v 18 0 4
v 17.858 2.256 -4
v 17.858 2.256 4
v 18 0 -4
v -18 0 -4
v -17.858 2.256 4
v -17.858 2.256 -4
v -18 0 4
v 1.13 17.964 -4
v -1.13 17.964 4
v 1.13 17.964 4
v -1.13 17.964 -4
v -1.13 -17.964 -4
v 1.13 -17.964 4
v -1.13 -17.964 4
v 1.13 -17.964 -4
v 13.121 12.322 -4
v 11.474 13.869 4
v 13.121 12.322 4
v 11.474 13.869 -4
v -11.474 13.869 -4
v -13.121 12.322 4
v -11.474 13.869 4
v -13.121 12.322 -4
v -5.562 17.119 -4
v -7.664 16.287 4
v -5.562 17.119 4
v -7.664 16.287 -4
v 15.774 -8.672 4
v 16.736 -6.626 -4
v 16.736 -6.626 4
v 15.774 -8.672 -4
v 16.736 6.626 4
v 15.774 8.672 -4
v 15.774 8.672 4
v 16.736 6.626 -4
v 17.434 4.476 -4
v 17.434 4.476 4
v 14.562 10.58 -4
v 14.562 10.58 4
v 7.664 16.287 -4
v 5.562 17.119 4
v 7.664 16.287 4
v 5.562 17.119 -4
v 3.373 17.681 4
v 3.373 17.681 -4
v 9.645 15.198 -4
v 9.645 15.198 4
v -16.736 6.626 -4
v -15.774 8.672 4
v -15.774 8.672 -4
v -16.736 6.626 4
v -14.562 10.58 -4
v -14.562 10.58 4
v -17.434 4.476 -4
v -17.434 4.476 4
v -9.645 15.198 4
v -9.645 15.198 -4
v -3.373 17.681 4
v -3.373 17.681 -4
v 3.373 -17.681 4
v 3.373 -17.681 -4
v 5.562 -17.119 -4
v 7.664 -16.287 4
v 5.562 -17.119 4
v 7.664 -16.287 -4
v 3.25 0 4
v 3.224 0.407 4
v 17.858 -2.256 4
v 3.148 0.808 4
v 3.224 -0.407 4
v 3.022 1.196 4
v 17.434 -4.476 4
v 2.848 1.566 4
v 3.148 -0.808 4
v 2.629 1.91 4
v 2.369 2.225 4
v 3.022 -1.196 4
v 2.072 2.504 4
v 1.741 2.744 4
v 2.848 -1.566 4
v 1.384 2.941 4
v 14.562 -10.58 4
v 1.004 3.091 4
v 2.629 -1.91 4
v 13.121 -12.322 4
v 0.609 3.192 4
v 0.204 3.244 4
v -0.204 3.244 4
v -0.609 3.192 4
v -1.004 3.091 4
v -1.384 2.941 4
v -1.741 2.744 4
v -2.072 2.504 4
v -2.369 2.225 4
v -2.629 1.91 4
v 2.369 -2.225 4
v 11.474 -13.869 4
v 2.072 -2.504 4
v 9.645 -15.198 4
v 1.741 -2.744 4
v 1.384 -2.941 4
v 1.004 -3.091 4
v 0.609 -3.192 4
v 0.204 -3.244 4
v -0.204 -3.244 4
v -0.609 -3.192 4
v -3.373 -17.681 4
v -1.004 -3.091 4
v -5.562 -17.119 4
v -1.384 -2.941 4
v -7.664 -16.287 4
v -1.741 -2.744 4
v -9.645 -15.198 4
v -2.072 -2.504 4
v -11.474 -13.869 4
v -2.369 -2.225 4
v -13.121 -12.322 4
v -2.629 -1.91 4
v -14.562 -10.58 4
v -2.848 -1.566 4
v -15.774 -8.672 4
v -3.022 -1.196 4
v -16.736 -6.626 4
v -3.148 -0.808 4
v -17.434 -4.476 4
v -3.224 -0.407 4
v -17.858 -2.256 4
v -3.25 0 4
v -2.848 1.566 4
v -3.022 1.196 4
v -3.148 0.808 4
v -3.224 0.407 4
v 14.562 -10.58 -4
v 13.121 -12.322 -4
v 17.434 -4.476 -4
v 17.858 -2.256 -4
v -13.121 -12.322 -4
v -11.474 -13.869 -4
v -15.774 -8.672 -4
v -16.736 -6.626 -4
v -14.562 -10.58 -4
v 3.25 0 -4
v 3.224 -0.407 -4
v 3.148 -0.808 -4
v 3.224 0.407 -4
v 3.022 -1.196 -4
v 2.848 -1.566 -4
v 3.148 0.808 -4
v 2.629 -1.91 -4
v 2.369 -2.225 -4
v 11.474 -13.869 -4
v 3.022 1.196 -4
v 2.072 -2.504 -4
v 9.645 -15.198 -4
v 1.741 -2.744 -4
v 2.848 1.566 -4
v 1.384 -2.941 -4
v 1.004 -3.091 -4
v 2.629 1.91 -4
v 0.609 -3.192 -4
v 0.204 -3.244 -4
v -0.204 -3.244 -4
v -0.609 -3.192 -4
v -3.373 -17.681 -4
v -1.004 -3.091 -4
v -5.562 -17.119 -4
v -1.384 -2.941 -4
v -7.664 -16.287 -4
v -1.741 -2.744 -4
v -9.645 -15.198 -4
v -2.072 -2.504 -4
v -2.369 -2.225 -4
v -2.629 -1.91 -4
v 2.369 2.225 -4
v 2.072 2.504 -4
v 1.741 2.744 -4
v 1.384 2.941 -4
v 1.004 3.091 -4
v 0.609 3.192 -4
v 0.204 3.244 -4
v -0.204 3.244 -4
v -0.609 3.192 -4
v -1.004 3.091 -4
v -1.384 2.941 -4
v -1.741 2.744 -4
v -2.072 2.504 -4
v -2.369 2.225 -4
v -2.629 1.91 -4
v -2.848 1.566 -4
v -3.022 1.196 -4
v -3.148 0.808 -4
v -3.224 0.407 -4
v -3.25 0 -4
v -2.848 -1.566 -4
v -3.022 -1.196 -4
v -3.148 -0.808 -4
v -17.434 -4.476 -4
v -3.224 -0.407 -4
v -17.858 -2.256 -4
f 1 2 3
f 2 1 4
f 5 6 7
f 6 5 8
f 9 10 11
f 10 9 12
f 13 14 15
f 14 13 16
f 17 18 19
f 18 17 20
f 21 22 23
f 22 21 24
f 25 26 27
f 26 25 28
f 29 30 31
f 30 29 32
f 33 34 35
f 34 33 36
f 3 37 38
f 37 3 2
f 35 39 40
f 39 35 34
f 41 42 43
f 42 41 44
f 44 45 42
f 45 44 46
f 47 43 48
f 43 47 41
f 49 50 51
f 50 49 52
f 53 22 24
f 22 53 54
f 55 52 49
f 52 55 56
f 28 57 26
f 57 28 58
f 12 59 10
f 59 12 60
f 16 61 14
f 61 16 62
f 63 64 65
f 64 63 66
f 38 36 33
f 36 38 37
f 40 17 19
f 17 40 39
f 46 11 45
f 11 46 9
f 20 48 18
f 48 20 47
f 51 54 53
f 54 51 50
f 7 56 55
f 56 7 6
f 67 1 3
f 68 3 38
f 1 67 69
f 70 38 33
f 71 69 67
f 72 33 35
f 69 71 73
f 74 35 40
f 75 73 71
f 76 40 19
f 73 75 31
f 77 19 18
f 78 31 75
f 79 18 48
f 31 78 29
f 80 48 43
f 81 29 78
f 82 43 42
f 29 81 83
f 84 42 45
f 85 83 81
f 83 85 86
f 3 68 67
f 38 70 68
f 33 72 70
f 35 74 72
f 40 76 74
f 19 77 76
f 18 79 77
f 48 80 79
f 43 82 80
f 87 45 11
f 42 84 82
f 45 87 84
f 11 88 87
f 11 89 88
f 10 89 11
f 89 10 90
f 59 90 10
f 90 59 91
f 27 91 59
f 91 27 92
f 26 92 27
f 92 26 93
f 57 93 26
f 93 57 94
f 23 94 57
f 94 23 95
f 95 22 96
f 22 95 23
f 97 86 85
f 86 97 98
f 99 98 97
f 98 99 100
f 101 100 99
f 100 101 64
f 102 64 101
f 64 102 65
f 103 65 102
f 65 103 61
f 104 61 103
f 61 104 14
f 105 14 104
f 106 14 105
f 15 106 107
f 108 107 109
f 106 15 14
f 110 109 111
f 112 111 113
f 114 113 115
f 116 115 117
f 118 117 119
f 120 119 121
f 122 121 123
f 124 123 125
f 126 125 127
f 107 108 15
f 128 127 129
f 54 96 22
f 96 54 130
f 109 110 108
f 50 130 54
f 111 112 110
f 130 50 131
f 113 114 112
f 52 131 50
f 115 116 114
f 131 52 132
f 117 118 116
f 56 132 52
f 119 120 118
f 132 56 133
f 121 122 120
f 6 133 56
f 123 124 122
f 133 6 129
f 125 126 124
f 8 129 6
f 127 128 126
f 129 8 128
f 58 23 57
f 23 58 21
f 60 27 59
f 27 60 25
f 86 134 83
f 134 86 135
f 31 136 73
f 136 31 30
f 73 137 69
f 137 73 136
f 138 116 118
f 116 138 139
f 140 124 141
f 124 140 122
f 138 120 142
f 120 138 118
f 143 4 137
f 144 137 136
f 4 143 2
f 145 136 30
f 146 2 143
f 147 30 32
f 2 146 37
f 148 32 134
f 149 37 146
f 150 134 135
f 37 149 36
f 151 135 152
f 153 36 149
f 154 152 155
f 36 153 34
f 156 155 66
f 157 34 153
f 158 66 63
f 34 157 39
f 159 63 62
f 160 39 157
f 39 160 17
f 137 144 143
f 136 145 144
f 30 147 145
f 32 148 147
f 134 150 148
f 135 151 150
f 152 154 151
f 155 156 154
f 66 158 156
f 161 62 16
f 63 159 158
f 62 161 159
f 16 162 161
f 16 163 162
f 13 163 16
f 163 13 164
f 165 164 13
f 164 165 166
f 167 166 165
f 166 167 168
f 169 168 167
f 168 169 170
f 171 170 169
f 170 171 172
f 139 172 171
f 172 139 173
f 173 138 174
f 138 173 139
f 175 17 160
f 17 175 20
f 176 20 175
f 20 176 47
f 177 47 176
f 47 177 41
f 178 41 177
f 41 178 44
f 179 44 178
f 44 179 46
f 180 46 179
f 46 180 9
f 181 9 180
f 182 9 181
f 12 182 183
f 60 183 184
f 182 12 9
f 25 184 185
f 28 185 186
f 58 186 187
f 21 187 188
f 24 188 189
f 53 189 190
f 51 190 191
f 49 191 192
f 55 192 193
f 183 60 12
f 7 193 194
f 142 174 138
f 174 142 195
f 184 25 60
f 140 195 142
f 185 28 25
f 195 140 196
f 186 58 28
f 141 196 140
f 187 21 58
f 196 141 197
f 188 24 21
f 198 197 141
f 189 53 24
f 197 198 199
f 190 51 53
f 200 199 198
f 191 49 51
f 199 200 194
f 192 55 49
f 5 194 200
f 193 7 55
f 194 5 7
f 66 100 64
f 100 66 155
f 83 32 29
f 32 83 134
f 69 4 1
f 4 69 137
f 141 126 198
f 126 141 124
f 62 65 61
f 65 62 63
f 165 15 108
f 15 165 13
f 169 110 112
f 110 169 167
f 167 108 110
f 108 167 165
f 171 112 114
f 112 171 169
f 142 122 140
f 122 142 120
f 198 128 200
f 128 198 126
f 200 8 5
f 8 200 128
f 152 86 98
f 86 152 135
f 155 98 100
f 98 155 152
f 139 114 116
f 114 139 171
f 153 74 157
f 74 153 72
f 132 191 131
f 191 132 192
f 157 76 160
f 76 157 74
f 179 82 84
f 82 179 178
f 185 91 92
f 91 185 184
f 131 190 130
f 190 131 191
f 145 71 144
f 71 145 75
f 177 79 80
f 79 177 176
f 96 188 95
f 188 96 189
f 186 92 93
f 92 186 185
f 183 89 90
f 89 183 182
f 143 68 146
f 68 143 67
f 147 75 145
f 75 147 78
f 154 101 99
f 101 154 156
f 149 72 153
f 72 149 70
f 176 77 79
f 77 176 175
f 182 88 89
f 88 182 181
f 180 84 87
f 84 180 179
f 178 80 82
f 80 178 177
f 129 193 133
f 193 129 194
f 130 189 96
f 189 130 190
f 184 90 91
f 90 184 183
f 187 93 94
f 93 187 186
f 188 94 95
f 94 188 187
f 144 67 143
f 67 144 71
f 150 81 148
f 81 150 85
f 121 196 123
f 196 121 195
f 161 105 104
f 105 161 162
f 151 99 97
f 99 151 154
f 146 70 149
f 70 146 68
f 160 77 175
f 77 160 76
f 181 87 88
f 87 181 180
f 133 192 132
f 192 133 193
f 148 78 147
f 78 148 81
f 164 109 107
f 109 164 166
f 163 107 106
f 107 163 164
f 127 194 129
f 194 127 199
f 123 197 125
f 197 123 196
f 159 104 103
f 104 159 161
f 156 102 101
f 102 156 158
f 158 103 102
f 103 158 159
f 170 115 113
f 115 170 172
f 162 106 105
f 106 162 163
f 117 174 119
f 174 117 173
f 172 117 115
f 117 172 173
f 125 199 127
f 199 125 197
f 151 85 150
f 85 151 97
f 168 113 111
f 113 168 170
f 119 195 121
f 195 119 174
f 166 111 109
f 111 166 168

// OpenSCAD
$fn = 50;


difference() {
	union() {
		translate(v = [0, 0, -4.0000000000]) {
			cylinder(h = 8, r = 18.0000000000);
		}
	}
	union() {
		translate(v = [0, 0, -100.0000000000]) {
			cylinder(h = 200, r = 3.2500000000);
		}
	}
}
